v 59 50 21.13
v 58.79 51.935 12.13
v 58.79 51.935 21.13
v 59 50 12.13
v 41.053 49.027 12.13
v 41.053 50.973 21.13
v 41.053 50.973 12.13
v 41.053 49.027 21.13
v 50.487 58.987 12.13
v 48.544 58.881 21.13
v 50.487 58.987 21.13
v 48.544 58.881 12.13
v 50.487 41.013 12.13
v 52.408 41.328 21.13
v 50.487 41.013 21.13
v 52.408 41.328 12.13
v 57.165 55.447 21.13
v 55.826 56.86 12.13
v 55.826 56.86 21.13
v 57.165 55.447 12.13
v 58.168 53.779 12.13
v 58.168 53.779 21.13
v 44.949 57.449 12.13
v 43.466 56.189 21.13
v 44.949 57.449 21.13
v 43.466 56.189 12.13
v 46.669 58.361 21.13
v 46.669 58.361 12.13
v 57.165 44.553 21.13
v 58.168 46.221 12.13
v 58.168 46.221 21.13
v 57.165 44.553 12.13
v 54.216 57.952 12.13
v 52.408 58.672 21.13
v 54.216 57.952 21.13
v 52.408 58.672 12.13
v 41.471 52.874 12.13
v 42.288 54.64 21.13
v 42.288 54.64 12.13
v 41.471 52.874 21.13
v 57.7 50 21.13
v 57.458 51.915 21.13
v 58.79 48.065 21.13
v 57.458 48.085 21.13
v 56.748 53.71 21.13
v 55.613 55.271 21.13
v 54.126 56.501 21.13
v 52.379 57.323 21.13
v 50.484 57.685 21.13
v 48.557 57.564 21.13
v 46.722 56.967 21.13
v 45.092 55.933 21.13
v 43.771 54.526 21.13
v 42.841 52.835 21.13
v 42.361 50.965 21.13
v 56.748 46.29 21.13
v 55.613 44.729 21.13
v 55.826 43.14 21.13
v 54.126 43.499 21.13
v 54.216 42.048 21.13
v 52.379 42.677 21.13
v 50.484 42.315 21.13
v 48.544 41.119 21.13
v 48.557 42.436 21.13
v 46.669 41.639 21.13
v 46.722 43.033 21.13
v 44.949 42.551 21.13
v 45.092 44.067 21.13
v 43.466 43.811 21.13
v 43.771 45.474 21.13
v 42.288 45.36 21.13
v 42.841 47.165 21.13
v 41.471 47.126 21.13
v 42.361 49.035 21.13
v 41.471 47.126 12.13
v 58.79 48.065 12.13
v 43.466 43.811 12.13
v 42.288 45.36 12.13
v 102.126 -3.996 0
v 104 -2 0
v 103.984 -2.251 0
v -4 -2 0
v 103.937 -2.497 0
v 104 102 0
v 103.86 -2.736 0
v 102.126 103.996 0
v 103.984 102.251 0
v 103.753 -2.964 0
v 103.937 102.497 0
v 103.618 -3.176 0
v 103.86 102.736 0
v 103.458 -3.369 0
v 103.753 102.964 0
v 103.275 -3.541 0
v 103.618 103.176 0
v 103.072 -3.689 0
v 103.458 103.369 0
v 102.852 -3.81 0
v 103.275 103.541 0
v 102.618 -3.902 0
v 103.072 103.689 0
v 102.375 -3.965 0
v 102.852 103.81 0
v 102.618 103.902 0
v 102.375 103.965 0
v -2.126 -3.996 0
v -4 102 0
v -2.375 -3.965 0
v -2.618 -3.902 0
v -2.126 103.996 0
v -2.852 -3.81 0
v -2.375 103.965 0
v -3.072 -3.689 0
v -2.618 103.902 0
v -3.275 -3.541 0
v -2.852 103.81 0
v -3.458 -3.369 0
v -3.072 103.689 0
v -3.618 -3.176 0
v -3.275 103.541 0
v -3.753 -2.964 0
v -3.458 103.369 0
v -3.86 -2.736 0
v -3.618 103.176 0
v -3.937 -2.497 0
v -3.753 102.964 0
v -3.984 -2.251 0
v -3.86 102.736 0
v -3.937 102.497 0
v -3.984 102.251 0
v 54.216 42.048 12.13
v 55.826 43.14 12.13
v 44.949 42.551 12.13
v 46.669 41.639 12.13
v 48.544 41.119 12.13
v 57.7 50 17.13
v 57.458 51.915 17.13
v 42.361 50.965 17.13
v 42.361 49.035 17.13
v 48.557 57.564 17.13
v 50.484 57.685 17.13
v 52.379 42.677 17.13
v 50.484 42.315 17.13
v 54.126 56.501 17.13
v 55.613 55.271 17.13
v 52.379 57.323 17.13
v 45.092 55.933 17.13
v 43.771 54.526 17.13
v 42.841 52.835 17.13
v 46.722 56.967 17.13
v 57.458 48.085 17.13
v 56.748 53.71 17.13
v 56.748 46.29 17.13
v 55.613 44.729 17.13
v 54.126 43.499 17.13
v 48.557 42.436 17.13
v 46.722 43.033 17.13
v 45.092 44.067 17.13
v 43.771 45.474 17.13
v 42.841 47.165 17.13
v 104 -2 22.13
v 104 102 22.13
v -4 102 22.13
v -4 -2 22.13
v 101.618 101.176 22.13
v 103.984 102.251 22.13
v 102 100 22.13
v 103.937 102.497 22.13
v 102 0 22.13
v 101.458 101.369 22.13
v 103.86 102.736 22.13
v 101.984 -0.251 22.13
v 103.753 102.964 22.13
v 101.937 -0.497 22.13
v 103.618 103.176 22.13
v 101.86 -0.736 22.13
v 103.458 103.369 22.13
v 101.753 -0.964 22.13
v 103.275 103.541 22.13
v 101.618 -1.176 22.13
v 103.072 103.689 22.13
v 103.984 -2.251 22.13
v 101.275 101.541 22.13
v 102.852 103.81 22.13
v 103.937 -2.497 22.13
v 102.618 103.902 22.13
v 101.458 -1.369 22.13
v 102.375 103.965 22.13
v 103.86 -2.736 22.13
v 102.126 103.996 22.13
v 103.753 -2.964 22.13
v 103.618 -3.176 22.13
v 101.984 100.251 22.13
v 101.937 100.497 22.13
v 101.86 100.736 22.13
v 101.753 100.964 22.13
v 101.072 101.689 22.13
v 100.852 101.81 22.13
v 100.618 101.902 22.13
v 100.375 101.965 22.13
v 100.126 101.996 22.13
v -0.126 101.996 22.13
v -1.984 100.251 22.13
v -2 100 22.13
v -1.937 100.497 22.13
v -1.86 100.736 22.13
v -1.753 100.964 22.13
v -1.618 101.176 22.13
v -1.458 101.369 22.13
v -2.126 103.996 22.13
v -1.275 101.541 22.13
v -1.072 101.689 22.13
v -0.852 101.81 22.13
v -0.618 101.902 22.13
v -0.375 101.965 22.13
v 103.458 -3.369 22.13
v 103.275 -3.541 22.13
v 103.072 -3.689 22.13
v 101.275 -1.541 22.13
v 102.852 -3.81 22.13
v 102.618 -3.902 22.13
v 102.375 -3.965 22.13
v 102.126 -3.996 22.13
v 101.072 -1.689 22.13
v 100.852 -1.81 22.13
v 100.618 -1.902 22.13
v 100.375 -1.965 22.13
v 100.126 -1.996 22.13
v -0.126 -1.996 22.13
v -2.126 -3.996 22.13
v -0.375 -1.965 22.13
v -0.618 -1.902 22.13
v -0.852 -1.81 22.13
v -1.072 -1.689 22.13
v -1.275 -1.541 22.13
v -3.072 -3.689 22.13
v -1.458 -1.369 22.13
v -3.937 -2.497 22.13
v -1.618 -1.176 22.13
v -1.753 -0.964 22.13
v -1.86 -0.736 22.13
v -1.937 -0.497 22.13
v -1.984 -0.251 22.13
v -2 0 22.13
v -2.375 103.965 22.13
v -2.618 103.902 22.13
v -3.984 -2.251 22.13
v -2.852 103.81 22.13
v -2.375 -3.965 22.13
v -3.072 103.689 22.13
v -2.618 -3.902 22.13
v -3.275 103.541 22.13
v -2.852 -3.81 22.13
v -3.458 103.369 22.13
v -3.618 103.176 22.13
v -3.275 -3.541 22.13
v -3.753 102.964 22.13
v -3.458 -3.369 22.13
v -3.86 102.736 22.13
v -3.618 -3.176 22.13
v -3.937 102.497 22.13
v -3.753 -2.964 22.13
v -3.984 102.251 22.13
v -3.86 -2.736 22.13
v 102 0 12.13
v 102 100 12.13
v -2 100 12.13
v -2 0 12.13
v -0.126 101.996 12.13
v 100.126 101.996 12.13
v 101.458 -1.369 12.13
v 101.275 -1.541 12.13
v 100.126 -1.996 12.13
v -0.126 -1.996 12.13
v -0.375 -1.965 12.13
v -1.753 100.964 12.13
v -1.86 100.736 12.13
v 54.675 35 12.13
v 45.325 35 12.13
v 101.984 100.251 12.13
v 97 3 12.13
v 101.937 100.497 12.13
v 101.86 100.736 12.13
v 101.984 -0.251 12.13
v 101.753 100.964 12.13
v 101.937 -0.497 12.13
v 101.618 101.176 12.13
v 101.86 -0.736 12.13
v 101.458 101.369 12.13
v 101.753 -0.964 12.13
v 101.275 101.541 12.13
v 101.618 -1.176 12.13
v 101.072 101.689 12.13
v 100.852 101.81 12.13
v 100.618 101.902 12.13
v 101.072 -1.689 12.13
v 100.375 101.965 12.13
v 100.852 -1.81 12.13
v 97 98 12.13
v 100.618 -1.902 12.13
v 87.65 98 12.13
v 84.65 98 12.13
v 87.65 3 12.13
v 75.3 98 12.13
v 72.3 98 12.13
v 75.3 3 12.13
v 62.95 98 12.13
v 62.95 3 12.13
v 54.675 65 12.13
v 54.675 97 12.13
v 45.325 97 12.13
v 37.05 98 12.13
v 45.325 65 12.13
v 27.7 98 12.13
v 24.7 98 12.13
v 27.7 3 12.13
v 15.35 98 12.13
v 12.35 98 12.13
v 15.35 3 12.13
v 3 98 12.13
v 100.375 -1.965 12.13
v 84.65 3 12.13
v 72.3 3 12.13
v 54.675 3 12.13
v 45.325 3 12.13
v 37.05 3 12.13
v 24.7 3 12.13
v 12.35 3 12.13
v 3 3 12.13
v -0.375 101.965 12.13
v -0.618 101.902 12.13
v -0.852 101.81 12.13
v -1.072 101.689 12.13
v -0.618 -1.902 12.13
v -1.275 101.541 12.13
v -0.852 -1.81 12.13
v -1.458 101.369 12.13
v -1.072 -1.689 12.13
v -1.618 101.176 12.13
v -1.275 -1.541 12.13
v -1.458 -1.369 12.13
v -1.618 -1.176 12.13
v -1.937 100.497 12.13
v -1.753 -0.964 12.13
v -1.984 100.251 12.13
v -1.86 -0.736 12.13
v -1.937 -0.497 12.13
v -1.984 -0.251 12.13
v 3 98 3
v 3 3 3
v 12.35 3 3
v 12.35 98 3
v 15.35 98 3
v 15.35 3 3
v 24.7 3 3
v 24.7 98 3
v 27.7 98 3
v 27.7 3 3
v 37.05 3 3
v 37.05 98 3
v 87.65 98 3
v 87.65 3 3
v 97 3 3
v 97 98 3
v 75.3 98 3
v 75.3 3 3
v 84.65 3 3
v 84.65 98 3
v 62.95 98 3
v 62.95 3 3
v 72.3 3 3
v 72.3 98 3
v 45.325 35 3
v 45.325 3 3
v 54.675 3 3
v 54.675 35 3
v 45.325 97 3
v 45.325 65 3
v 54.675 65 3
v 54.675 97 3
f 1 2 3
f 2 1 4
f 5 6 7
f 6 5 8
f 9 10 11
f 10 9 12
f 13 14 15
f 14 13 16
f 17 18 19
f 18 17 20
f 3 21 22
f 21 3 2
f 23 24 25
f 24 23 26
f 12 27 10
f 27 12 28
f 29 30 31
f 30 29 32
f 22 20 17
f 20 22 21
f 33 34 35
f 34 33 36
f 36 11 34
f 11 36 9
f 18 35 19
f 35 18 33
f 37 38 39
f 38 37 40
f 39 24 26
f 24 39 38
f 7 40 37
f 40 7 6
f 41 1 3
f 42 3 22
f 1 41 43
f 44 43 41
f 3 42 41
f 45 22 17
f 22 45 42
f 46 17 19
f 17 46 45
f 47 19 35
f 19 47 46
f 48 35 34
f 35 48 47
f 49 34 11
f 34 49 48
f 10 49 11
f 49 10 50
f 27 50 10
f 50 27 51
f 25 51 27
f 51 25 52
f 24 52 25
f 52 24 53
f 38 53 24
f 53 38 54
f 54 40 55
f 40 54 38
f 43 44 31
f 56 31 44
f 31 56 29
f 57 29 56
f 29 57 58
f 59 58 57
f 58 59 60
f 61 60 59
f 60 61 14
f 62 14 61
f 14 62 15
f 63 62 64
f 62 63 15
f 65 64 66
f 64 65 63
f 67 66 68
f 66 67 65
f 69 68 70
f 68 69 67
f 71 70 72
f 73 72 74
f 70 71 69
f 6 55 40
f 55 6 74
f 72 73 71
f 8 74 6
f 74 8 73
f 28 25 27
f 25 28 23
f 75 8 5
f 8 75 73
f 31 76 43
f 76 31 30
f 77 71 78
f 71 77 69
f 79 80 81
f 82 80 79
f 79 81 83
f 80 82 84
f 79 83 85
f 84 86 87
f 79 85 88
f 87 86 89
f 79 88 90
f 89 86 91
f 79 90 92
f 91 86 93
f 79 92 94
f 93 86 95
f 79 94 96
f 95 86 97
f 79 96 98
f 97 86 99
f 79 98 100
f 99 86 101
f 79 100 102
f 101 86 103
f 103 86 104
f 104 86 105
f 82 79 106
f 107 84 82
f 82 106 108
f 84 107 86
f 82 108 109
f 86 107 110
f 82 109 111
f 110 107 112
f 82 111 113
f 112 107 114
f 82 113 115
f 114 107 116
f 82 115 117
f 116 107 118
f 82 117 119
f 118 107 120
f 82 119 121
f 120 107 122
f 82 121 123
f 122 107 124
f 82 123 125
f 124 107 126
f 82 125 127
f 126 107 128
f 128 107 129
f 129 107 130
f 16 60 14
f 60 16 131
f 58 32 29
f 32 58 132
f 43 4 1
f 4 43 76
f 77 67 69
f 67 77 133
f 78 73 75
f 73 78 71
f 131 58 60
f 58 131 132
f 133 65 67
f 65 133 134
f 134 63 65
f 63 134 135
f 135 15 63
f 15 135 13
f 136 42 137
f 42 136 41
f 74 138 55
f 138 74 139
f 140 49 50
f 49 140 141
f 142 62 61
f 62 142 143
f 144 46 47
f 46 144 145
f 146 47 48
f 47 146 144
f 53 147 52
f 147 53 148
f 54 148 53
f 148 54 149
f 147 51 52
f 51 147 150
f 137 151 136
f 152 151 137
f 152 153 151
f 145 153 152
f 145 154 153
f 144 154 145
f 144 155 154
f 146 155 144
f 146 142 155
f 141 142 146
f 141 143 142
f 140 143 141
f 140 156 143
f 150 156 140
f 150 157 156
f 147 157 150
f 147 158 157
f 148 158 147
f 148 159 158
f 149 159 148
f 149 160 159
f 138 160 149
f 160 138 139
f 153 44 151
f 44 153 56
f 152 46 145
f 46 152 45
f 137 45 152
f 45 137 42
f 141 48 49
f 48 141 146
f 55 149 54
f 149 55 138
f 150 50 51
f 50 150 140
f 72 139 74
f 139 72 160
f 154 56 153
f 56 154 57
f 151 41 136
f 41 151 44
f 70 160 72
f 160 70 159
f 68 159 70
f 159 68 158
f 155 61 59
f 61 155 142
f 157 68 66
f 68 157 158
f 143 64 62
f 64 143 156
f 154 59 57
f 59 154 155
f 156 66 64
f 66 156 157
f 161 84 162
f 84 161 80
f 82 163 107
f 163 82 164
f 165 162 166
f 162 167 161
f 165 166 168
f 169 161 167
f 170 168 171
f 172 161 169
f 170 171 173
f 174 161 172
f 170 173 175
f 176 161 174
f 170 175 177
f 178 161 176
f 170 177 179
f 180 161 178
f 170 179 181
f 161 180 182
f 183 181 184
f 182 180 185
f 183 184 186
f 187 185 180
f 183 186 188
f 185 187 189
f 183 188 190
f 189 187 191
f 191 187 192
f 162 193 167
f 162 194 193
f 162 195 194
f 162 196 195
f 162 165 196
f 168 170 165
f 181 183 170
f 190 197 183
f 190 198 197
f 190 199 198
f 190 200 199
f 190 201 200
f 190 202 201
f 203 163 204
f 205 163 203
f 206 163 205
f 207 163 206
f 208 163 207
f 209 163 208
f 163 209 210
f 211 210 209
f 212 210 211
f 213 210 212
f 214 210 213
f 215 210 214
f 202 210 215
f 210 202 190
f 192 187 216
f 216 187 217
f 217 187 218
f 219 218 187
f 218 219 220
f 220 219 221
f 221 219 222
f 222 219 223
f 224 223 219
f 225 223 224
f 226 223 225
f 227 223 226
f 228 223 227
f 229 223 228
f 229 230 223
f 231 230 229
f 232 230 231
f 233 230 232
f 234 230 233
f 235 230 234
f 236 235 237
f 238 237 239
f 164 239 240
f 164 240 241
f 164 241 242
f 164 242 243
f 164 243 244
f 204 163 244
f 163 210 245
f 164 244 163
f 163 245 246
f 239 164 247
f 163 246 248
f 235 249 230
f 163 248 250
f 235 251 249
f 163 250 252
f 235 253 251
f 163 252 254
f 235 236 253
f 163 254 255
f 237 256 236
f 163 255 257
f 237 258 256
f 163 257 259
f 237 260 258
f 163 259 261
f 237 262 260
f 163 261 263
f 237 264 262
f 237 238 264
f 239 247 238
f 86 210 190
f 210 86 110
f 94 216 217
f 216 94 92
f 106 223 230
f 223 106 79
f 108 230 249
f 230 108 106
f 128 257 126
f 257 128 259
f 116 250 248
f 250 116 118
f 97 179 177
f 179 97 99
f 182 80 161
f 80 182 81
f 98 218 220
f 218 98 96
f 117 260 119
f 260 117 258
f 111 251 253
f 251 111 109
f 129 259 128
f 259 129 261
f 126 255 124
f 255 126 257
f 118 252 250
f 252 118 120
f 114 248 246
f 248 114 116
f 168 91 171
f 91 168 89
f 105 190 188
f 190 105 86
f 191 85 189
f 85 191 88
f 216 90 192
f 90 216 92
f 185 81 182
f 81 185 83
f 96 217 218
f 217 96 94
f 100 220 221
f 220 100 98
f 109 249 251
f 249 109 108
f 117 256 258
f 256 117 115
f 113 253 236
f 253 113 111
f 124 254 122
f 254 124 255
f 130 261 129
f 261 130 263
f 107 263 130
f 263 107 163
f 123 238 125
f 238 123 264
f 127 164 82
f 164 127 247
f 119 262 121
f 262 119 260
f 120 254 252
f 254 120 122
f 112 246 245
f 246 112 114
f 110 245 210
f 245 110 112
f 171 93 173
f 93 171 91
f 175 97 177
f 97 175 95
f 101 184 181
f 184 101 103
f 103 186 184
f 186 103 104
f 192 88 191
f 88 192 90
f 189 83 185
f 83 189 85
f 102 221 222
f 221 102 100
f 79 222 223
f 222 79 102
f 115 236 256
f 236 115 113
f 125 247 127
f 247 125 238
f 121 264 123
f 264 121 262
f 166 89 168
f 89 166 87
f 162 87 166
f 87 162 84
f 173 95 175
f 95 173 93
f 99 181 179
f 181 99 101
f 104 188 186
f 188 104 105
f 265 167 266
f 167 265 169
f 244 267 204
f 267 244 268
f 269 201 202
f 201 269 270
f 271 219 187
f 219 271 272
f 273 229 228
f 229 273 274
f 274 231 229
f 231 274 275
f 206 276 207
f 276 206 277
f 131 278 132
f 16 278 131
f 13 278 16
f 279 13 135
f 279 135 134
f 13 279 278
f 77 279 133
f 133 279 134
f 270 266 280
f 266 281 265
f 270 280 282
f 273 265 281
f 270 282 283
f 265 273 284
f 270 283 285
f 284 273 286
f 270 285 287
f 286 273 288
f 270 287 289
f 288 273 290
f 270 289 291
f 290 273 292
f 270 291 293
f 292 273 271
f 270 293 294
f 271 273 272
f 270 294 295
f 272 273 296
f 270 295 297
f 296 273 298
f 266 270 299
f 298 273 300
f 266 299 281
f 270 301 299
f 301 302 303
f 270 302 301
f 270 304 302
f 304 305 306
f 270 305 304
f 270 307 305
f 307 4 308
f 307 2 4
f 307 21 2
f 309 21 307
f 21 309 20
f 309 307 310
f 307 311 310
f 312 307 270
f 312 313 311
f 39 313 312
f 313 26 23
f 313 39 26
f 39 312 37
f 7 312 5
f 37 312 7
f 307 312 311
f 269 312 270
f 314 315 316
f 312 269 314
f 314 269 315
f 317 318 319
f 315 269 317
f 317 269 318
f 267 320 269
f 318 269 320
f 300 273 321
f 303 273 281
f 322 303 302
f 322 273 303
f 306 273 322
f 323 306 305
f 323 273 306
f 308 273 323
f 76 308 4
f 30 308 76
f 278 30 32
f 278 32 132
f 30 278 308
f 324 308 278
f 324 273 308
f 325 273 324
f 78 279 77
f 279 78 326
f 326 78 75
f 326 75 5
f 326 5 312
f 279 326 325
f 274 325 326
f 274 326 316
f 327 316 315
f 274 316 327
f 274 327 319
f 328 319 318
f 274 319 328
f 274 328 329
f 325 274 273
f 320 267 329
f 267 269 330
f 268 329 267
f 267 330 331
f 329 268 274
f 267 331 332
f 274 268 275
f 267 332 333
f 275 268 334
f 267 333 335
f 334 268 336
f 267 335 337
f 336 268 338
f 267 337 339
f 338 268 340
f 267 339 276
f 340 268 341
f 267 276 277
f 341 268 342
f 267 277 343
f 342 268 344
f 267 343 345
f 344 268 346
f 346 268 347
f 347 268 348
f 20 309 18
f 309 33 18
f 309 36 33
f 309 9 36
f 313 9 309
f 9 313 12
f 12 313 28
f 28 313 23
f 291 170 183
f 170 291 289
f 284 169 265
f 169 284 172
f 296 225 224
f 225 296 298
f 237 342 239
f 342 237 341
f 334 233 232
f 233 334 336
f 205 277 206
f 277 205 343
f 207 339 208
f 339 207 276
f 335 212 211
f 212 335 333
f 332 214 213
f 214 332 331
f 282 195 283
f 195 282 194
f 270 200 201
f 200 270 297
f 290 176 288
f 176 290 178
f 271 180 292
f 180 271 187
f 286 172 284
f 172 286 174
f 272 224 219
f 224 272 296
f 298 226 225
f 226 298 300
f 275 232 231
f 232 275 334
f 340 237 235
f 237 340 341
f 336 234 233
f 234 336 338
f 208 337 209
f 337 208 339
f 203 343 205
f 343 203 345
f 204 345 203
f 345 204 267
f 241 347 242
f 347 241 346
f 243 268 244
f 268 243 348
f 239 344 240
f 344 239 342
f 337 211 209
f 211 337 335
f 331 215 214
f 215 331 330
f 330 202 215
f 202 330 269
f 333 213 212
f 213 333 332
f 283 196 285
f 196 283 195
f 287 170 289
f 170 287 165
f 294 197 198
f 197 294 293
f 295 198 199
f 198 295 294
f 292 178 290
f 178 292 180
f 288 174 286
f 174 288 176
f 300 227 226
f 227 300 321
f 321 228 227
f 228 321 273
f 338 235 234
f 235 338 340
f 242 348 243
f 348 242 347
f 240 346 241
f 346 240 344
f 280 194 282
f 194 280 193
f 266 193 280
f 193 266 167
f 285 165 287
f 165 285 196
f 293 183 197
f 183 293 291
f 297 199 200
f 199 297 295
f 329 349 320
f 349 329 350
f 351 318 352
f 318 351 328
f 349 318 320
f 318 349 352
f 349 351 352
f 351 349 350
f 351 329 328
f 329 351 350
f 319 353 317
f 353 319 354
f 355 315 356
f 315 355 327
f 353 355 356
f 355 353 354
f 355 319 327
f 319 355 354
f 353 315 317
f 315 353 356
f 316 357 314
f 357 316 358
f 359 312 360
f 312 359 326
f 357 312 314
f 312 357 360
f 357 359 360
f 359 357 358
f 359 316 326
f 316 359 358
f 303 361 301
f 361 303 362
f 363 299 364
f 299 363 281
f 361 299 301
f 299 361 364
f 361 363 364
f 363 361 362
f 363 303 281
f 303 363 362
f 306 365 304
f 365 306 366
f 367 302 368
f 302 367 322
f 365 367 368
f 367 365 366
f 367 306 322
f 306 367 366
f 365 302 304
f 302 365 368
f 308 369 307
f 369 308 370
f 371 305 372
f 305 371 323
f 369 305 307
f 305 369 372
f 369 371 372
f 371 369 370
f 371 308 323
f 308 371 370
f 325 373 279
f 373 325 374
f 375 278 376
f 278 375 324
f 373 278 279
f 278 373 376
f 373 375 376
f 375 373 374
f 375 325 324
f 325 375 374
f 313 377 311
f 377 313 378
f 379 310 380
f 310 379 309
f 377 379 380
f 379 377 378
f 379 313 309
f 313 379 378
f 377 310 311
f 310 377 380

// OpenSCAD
woodenCubeWidth = 10.4 + .1;
woodenCubeLength = 9.05 + .3;
woodenCubeHeight = 17.93 + .2; 

protrusionHeight = 9;

length = 100;
width = 100;
floorHeight = 3;
height = (woodenCubeHeight - protrusionHeight) + floorHeight;
totalHeight = height + protrusionHeight;
magnetPadding = 15;
magnetBaseOuterDiameter = 18;
magnetBaseInnerDiameter = 15.4;
magnetHeight = 4.0;

woodenCubeBoxHeight = woodenCubeHeight - protrusionHeight;
woodenCubeBoxLength = woodenCubeLength;

wallThickness = 3;
lipThickness = 2;

woodenCubeCount = 9;
shortWoodenCubeCount = 3;
woodenCubeBoxWidth = woodenCubeWidth * woodenCubeCount + .5;
shortWoodenCubeBoxWidth = woodenCubeWidth * shortWoodenCubeCount + .5;

union() {    
    difference() {    
        $fn=50;
            difference(){
                translate([-lipThickness, -lipThickness, 0])
                    minkowski()
                    {
                        cube([length + lipThickness * 2, width + lipThickness * 2, totalHeight]);
                        cylinder(r=2,h=1);
                    }
                    
                translate([0, 0, height])
                    minkowski()
                    {
                        cube([length, width, totalHeight - height]);
                        cylinder(r=2,h=1);
                    }
                translate([wallThickness, wallThickness, 0])
                    WoodenCubeBox();
                translate([wallThickness * 2 + woodenCubeLength, wallThickness, 0])
                    WoodenCubeBox();
                translate([wallThickness * 3 + woodenCubeLength * 2, wallThickness, 0])
                    WoodenCubeBox();
                
                translate([length - (wallThickness + woodenCubeLength), wallThickness, 0])
                    WoodenCubeBox();
                translate([length - (wallThickness * 2 + woodenCubeLength * 2), wallThickness, 0])
                    WoodenCubeBox();
                translate([length - (wallThickness * 3 + woodenCubeLength * 3), wallThickness, 0])
                    WoodenCubeBox();
                
                translate([length/2 - woodenCubeLength/2, wallThickness, 0])
                    ShortWoodenCubeBox();
                translate([length/2 - woodenCubeLength/2, width - (wallThickness + shortWoodenCubeBoxWidth), 0])
                    ShortWoodenCubeBox();
            }

    }
    difference() {
        translate([length/2, width/2, 0])
            cylinder(height + protrusionHeight, d=magnetBaseOuterDiameter);
        translate([length/2, width/2, height + protrusionHeight - magnetHeight])
             cylinder(magnetHeight, d=magnetBaseInnerDiameter);
    }
}
    
    

module WoodenCubeBox()
{

    translate([0, 0, height - woodenCubeBoxHeight])
        cube([woodenCubeBoxLength, woodenCubeBoxWidth, woodenCubeBoxHeight]);

}


module ShortWoodenCubeBox()
{

    translate([0, 0, height - woodenCubeBoxHeight])
        cube([woodenCubeBoxLength, shortWoodenCubeBoxWidth, woodenCubeBoxHeight]);

}
